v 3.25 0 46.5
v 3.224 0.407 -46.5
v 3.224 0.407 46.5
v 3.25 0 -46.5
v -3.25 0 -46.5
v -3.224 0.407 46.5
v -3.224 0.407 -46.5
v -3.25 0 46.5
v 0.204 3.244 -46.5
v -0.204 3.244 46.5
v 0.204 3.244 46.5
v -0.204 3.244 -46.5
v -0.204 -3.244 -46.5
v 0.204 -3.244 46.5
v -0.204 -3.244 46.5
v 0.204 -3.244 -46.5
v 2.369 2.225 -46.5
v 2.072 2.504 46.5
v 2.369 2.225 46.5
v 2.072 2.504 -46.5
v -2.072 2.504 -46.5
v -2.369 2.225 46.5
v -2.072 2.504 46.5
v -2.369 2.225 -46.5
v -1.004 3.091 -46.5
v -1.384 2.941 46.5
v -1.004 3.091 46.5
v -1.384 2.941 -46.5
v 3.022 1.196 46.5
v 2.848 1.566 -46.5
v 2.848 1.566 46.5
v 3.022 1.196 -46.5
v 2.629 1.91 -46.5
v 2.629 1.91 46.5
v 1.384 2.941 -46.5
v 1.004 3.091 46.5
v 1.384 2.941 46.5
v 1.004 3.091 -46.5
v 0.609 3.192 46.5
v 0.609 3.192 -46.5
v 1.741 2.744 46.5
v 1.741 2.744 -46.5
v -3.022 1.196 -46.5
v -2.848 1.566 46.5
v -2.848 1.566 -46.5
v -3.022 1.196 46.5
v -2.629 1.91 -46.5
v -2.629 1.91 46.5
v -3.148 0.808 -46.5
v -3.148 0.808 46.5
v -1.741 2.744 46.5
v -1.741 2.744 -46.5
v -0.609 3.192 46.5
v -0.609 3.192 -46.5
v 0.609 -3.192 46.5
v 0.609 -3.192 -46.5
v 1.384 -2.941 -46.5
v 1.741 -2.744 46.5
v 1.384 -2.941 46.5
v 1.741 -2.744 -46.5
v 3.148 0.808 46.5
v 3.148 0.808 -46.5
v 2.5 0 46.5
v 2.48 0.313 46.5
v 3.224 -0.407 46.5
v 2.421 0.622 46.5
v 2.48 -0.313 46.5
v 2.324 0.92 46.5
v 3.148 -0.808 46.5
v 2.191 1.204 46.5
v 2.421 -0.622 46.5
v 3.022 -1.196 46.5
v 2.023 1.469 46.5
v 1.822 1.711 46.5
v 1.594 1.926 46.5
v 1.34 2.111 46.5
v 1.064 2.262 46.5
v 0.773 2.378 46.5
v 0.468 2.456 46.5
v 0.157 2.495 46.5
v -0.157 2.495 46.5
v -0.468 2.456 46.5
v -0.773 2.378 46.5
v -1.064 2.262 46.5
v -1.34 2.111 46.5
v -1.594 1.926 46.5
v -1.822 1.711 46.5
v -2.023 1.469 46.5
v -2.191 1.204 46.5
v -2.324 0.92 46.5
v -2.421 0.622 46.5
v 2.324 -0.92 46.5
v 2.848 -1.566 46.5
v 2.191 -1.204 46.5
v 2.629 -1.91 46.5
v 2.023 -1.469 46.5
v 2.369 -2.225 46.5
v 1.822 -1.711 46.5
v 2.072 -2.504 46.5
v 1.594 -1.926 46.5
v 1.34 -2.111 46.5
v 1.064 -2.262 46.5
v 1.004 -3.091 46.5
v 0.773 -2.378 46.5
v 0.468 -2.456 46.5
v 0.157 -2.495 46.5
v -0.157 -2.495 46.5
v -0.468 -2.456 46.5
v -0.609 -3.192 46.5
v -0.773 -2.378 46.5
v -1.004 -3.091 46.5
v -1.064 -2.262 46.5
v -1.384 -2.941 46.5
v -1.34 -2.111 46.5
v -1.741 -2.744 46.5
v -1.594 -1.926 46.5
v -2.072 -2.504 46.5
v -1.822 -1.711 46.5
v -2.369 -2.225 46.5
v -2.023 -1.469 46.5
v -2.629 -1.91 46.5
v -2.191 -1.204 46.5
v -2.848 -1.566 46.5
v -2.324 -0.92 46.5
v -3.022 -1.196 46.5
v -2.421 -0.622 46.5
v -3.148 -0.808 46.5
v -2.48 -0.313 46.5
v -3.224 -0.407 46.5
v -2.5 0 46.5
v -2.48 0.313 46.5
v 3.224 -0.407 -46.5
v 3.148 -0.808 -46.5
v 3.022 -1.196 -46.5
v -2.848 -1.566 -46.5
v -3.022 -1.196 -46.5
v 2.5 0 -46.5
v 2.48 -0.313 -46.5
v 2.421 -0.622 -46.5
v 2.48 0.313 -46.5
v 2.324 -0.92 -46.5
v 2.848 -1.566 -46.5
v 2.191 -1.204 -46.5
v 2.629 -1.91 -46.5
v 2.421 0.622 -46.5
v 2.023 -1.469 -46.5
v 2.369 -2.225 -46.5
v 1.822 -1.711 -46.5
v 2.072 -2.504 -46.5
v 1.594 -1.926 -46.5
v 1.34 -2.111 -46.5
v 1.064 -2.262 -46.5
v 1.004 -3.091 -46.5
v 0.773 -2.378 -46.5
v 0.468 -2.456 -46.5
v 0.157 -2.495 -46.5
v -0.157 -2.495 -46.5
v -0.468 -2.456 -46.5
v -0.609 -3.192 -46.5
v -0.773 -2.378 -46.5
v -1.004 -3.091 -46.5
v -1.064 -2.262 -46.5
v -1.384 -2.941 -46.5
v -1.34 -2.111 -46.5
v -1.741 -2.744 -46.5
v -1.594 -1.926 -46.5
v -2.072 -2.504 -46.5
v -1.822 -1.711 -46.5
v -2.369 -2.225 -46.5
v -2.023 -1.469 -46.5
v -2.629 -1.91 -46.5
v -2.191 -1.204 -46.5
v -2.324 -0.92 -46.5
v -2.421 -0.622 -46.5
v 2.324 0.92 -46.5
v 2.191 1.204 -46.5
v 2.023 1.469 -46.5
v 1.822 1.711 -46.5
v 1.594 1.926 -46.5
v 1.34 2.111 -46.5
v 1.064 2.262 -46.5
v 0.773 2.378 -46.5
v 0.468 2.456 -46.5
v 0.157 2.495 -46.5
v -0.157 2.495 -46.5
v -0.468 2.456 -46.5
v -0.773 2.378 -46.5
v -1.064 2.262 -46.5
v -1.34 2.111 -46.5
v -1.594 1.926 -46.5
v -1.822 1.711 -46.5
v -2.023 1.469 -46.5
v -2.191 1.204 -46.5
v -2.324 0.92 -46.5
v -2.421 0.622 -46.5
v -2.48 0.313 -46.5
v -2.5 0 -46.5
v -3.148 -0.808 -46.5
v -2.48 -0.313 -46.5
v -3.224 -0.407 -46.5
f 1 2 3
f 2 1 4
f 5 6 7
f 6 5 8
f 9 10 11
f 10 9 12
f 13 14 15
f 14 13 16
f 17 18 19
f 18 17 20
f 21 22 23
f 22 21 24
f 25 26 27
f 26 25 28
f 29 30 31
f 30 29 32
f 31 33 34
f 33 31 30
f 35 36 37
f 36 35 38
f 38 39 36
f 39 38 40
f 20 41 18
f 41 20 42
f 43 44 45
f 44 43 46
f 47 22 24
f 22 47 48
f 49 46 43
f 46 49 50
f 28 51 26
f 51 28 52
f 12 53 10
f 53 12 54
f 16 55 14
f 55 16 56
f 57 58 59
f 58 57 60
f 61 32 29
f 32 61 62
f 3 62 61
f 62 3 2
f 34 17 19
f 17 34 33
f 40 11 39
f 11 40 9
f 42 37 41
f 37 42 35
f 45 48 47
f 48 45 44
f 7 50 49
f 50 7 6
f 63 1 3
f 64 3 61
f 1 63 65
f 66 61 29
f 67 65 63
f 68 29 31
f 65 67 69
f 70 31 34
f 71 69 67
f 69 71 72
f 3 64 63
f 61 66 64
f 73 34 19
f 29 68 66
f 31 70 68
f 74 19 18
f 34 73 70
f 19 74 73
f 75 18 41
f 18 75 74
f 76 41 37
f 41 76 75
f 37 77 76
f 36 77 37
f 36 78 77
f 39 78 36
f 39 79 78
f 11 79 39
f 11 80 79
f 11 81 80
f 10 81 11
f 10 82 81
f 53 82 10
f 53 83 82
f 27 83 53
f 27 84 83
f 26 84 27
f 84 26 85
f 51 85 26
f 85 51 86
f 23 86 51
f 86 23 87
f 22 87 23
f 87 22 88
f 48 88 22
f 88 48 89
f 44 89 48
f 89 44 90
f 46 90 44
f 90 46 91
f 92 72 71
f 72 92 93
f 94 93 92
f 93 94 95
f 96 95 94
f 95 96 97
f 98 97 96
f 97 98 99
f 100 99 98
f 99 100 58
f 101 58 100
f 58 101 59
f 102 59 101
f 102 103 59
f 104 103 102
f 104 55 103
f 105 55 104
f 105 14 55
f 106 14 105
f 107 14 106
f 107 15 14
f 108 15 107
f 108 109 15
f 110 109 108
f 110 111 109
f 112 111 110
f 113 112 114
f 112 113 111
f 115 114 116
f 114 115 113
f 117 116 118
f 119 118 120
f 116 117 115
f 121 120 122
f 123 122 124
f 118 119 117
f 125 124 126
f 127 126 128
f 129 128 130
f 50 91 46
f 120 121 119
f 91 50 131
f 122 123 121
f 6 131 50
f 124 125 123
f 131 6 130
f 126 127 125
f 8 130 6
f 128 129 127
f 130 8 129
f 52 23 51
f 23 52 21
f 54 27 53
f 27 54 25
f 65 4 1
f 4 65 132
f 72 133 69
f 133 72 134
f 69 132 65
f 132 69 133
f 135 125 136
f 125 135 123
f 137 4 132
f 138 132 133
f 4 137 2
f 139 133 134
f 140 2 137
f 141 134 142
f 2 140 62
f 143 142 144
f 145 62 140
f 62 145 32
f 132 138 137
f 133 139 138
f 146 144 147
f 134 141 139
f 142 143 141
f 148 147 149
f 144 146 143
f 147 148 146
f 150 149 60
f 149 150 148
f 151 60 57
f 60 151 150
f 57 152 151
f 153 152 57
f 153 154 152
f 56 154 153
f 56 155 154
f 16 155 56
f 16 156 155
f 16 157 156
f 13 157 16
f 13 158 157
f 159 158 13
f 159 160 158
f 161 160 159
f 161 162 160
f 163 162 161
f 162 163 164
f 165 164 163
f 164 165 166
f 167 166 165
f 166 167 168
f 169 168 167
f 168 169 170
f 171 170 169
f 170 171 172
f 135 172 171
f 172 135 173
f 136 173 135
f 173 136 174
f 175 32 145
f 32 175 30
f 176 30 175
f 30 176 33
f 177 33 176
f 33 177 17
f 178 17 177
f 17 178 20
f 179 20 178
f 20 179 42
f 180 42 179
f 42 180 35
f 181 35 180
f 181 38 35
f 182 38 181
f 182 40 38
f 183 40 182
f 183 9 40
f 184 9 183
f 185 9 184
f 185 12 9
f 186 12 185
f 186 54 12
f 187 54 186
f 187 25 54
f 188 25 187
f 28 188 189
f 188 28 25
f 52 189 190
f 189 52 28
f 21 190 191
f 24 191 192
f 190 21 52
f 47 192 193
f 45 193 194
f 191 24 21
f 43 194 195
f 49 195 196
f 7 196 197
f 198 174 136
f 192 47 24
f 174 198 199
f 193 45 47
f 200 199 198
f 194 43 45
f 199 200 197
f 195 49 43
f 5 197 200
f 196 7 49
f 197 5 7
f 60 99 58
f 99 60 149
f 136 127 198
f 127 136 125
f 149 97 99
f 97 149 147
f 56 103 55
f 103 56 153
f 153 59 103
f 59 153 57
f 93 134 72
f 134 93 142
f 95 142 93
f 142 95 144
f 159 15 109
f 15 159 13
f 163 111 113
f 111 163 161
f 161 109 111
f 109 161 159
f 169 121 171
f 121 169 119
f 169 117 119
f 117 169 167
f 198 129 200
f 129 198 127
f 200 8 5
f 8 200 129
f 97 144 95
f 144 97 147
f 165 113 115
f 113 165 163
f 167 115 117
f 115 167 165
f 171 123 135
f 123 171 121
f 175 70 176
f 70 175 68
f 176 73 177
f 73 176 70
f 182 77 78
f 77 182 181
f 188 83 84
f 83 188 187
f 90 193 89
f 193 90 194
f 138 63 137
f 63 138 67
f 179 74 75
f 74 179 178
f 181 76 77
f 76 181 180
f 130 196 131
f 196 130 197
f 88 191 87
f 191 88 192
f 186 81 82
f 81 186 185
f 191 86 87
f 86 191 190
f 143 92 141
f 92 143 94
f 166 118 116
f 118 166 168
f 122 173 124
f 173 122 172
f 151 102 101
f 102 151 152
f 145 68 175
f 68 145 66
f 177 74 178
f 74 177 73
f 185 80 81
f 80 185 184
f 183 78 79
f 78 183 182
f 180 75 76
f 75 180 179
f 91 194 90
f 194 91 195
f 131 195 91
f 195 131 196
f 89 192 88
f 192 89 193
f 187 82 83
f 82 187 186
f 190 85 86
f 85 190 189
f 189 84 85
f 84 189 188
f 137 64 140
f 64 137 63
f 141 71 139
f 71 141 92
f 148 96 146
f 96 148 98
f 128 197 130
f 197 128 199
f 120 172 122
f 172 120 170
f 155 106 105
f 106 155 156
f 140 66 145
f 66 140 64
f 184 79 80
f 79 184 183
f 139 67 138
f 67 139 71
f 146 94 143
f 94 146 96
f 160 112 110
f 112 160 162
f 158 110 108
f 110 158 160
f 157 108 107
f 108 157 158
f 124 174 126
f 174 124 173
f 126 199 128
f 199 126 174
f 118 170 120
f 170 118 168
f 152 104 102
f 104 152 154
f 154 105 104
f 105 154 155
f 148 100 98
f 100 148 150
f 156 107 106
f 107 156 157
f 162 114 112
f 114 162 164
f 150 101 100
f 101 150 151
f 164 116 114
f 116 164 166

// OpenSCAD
$fn = 50;


difference() {
	union() {
		translate(v = [0, 0, -46.5000000000]) {
			cylinder(h = 93, r = 3.2500000000);
		}
	}
	union() {
		translate(v = [0, 0, -100.0000000000]) {
			cylinder(h = 200, r = 2.5000000000);
		}
	}
}
